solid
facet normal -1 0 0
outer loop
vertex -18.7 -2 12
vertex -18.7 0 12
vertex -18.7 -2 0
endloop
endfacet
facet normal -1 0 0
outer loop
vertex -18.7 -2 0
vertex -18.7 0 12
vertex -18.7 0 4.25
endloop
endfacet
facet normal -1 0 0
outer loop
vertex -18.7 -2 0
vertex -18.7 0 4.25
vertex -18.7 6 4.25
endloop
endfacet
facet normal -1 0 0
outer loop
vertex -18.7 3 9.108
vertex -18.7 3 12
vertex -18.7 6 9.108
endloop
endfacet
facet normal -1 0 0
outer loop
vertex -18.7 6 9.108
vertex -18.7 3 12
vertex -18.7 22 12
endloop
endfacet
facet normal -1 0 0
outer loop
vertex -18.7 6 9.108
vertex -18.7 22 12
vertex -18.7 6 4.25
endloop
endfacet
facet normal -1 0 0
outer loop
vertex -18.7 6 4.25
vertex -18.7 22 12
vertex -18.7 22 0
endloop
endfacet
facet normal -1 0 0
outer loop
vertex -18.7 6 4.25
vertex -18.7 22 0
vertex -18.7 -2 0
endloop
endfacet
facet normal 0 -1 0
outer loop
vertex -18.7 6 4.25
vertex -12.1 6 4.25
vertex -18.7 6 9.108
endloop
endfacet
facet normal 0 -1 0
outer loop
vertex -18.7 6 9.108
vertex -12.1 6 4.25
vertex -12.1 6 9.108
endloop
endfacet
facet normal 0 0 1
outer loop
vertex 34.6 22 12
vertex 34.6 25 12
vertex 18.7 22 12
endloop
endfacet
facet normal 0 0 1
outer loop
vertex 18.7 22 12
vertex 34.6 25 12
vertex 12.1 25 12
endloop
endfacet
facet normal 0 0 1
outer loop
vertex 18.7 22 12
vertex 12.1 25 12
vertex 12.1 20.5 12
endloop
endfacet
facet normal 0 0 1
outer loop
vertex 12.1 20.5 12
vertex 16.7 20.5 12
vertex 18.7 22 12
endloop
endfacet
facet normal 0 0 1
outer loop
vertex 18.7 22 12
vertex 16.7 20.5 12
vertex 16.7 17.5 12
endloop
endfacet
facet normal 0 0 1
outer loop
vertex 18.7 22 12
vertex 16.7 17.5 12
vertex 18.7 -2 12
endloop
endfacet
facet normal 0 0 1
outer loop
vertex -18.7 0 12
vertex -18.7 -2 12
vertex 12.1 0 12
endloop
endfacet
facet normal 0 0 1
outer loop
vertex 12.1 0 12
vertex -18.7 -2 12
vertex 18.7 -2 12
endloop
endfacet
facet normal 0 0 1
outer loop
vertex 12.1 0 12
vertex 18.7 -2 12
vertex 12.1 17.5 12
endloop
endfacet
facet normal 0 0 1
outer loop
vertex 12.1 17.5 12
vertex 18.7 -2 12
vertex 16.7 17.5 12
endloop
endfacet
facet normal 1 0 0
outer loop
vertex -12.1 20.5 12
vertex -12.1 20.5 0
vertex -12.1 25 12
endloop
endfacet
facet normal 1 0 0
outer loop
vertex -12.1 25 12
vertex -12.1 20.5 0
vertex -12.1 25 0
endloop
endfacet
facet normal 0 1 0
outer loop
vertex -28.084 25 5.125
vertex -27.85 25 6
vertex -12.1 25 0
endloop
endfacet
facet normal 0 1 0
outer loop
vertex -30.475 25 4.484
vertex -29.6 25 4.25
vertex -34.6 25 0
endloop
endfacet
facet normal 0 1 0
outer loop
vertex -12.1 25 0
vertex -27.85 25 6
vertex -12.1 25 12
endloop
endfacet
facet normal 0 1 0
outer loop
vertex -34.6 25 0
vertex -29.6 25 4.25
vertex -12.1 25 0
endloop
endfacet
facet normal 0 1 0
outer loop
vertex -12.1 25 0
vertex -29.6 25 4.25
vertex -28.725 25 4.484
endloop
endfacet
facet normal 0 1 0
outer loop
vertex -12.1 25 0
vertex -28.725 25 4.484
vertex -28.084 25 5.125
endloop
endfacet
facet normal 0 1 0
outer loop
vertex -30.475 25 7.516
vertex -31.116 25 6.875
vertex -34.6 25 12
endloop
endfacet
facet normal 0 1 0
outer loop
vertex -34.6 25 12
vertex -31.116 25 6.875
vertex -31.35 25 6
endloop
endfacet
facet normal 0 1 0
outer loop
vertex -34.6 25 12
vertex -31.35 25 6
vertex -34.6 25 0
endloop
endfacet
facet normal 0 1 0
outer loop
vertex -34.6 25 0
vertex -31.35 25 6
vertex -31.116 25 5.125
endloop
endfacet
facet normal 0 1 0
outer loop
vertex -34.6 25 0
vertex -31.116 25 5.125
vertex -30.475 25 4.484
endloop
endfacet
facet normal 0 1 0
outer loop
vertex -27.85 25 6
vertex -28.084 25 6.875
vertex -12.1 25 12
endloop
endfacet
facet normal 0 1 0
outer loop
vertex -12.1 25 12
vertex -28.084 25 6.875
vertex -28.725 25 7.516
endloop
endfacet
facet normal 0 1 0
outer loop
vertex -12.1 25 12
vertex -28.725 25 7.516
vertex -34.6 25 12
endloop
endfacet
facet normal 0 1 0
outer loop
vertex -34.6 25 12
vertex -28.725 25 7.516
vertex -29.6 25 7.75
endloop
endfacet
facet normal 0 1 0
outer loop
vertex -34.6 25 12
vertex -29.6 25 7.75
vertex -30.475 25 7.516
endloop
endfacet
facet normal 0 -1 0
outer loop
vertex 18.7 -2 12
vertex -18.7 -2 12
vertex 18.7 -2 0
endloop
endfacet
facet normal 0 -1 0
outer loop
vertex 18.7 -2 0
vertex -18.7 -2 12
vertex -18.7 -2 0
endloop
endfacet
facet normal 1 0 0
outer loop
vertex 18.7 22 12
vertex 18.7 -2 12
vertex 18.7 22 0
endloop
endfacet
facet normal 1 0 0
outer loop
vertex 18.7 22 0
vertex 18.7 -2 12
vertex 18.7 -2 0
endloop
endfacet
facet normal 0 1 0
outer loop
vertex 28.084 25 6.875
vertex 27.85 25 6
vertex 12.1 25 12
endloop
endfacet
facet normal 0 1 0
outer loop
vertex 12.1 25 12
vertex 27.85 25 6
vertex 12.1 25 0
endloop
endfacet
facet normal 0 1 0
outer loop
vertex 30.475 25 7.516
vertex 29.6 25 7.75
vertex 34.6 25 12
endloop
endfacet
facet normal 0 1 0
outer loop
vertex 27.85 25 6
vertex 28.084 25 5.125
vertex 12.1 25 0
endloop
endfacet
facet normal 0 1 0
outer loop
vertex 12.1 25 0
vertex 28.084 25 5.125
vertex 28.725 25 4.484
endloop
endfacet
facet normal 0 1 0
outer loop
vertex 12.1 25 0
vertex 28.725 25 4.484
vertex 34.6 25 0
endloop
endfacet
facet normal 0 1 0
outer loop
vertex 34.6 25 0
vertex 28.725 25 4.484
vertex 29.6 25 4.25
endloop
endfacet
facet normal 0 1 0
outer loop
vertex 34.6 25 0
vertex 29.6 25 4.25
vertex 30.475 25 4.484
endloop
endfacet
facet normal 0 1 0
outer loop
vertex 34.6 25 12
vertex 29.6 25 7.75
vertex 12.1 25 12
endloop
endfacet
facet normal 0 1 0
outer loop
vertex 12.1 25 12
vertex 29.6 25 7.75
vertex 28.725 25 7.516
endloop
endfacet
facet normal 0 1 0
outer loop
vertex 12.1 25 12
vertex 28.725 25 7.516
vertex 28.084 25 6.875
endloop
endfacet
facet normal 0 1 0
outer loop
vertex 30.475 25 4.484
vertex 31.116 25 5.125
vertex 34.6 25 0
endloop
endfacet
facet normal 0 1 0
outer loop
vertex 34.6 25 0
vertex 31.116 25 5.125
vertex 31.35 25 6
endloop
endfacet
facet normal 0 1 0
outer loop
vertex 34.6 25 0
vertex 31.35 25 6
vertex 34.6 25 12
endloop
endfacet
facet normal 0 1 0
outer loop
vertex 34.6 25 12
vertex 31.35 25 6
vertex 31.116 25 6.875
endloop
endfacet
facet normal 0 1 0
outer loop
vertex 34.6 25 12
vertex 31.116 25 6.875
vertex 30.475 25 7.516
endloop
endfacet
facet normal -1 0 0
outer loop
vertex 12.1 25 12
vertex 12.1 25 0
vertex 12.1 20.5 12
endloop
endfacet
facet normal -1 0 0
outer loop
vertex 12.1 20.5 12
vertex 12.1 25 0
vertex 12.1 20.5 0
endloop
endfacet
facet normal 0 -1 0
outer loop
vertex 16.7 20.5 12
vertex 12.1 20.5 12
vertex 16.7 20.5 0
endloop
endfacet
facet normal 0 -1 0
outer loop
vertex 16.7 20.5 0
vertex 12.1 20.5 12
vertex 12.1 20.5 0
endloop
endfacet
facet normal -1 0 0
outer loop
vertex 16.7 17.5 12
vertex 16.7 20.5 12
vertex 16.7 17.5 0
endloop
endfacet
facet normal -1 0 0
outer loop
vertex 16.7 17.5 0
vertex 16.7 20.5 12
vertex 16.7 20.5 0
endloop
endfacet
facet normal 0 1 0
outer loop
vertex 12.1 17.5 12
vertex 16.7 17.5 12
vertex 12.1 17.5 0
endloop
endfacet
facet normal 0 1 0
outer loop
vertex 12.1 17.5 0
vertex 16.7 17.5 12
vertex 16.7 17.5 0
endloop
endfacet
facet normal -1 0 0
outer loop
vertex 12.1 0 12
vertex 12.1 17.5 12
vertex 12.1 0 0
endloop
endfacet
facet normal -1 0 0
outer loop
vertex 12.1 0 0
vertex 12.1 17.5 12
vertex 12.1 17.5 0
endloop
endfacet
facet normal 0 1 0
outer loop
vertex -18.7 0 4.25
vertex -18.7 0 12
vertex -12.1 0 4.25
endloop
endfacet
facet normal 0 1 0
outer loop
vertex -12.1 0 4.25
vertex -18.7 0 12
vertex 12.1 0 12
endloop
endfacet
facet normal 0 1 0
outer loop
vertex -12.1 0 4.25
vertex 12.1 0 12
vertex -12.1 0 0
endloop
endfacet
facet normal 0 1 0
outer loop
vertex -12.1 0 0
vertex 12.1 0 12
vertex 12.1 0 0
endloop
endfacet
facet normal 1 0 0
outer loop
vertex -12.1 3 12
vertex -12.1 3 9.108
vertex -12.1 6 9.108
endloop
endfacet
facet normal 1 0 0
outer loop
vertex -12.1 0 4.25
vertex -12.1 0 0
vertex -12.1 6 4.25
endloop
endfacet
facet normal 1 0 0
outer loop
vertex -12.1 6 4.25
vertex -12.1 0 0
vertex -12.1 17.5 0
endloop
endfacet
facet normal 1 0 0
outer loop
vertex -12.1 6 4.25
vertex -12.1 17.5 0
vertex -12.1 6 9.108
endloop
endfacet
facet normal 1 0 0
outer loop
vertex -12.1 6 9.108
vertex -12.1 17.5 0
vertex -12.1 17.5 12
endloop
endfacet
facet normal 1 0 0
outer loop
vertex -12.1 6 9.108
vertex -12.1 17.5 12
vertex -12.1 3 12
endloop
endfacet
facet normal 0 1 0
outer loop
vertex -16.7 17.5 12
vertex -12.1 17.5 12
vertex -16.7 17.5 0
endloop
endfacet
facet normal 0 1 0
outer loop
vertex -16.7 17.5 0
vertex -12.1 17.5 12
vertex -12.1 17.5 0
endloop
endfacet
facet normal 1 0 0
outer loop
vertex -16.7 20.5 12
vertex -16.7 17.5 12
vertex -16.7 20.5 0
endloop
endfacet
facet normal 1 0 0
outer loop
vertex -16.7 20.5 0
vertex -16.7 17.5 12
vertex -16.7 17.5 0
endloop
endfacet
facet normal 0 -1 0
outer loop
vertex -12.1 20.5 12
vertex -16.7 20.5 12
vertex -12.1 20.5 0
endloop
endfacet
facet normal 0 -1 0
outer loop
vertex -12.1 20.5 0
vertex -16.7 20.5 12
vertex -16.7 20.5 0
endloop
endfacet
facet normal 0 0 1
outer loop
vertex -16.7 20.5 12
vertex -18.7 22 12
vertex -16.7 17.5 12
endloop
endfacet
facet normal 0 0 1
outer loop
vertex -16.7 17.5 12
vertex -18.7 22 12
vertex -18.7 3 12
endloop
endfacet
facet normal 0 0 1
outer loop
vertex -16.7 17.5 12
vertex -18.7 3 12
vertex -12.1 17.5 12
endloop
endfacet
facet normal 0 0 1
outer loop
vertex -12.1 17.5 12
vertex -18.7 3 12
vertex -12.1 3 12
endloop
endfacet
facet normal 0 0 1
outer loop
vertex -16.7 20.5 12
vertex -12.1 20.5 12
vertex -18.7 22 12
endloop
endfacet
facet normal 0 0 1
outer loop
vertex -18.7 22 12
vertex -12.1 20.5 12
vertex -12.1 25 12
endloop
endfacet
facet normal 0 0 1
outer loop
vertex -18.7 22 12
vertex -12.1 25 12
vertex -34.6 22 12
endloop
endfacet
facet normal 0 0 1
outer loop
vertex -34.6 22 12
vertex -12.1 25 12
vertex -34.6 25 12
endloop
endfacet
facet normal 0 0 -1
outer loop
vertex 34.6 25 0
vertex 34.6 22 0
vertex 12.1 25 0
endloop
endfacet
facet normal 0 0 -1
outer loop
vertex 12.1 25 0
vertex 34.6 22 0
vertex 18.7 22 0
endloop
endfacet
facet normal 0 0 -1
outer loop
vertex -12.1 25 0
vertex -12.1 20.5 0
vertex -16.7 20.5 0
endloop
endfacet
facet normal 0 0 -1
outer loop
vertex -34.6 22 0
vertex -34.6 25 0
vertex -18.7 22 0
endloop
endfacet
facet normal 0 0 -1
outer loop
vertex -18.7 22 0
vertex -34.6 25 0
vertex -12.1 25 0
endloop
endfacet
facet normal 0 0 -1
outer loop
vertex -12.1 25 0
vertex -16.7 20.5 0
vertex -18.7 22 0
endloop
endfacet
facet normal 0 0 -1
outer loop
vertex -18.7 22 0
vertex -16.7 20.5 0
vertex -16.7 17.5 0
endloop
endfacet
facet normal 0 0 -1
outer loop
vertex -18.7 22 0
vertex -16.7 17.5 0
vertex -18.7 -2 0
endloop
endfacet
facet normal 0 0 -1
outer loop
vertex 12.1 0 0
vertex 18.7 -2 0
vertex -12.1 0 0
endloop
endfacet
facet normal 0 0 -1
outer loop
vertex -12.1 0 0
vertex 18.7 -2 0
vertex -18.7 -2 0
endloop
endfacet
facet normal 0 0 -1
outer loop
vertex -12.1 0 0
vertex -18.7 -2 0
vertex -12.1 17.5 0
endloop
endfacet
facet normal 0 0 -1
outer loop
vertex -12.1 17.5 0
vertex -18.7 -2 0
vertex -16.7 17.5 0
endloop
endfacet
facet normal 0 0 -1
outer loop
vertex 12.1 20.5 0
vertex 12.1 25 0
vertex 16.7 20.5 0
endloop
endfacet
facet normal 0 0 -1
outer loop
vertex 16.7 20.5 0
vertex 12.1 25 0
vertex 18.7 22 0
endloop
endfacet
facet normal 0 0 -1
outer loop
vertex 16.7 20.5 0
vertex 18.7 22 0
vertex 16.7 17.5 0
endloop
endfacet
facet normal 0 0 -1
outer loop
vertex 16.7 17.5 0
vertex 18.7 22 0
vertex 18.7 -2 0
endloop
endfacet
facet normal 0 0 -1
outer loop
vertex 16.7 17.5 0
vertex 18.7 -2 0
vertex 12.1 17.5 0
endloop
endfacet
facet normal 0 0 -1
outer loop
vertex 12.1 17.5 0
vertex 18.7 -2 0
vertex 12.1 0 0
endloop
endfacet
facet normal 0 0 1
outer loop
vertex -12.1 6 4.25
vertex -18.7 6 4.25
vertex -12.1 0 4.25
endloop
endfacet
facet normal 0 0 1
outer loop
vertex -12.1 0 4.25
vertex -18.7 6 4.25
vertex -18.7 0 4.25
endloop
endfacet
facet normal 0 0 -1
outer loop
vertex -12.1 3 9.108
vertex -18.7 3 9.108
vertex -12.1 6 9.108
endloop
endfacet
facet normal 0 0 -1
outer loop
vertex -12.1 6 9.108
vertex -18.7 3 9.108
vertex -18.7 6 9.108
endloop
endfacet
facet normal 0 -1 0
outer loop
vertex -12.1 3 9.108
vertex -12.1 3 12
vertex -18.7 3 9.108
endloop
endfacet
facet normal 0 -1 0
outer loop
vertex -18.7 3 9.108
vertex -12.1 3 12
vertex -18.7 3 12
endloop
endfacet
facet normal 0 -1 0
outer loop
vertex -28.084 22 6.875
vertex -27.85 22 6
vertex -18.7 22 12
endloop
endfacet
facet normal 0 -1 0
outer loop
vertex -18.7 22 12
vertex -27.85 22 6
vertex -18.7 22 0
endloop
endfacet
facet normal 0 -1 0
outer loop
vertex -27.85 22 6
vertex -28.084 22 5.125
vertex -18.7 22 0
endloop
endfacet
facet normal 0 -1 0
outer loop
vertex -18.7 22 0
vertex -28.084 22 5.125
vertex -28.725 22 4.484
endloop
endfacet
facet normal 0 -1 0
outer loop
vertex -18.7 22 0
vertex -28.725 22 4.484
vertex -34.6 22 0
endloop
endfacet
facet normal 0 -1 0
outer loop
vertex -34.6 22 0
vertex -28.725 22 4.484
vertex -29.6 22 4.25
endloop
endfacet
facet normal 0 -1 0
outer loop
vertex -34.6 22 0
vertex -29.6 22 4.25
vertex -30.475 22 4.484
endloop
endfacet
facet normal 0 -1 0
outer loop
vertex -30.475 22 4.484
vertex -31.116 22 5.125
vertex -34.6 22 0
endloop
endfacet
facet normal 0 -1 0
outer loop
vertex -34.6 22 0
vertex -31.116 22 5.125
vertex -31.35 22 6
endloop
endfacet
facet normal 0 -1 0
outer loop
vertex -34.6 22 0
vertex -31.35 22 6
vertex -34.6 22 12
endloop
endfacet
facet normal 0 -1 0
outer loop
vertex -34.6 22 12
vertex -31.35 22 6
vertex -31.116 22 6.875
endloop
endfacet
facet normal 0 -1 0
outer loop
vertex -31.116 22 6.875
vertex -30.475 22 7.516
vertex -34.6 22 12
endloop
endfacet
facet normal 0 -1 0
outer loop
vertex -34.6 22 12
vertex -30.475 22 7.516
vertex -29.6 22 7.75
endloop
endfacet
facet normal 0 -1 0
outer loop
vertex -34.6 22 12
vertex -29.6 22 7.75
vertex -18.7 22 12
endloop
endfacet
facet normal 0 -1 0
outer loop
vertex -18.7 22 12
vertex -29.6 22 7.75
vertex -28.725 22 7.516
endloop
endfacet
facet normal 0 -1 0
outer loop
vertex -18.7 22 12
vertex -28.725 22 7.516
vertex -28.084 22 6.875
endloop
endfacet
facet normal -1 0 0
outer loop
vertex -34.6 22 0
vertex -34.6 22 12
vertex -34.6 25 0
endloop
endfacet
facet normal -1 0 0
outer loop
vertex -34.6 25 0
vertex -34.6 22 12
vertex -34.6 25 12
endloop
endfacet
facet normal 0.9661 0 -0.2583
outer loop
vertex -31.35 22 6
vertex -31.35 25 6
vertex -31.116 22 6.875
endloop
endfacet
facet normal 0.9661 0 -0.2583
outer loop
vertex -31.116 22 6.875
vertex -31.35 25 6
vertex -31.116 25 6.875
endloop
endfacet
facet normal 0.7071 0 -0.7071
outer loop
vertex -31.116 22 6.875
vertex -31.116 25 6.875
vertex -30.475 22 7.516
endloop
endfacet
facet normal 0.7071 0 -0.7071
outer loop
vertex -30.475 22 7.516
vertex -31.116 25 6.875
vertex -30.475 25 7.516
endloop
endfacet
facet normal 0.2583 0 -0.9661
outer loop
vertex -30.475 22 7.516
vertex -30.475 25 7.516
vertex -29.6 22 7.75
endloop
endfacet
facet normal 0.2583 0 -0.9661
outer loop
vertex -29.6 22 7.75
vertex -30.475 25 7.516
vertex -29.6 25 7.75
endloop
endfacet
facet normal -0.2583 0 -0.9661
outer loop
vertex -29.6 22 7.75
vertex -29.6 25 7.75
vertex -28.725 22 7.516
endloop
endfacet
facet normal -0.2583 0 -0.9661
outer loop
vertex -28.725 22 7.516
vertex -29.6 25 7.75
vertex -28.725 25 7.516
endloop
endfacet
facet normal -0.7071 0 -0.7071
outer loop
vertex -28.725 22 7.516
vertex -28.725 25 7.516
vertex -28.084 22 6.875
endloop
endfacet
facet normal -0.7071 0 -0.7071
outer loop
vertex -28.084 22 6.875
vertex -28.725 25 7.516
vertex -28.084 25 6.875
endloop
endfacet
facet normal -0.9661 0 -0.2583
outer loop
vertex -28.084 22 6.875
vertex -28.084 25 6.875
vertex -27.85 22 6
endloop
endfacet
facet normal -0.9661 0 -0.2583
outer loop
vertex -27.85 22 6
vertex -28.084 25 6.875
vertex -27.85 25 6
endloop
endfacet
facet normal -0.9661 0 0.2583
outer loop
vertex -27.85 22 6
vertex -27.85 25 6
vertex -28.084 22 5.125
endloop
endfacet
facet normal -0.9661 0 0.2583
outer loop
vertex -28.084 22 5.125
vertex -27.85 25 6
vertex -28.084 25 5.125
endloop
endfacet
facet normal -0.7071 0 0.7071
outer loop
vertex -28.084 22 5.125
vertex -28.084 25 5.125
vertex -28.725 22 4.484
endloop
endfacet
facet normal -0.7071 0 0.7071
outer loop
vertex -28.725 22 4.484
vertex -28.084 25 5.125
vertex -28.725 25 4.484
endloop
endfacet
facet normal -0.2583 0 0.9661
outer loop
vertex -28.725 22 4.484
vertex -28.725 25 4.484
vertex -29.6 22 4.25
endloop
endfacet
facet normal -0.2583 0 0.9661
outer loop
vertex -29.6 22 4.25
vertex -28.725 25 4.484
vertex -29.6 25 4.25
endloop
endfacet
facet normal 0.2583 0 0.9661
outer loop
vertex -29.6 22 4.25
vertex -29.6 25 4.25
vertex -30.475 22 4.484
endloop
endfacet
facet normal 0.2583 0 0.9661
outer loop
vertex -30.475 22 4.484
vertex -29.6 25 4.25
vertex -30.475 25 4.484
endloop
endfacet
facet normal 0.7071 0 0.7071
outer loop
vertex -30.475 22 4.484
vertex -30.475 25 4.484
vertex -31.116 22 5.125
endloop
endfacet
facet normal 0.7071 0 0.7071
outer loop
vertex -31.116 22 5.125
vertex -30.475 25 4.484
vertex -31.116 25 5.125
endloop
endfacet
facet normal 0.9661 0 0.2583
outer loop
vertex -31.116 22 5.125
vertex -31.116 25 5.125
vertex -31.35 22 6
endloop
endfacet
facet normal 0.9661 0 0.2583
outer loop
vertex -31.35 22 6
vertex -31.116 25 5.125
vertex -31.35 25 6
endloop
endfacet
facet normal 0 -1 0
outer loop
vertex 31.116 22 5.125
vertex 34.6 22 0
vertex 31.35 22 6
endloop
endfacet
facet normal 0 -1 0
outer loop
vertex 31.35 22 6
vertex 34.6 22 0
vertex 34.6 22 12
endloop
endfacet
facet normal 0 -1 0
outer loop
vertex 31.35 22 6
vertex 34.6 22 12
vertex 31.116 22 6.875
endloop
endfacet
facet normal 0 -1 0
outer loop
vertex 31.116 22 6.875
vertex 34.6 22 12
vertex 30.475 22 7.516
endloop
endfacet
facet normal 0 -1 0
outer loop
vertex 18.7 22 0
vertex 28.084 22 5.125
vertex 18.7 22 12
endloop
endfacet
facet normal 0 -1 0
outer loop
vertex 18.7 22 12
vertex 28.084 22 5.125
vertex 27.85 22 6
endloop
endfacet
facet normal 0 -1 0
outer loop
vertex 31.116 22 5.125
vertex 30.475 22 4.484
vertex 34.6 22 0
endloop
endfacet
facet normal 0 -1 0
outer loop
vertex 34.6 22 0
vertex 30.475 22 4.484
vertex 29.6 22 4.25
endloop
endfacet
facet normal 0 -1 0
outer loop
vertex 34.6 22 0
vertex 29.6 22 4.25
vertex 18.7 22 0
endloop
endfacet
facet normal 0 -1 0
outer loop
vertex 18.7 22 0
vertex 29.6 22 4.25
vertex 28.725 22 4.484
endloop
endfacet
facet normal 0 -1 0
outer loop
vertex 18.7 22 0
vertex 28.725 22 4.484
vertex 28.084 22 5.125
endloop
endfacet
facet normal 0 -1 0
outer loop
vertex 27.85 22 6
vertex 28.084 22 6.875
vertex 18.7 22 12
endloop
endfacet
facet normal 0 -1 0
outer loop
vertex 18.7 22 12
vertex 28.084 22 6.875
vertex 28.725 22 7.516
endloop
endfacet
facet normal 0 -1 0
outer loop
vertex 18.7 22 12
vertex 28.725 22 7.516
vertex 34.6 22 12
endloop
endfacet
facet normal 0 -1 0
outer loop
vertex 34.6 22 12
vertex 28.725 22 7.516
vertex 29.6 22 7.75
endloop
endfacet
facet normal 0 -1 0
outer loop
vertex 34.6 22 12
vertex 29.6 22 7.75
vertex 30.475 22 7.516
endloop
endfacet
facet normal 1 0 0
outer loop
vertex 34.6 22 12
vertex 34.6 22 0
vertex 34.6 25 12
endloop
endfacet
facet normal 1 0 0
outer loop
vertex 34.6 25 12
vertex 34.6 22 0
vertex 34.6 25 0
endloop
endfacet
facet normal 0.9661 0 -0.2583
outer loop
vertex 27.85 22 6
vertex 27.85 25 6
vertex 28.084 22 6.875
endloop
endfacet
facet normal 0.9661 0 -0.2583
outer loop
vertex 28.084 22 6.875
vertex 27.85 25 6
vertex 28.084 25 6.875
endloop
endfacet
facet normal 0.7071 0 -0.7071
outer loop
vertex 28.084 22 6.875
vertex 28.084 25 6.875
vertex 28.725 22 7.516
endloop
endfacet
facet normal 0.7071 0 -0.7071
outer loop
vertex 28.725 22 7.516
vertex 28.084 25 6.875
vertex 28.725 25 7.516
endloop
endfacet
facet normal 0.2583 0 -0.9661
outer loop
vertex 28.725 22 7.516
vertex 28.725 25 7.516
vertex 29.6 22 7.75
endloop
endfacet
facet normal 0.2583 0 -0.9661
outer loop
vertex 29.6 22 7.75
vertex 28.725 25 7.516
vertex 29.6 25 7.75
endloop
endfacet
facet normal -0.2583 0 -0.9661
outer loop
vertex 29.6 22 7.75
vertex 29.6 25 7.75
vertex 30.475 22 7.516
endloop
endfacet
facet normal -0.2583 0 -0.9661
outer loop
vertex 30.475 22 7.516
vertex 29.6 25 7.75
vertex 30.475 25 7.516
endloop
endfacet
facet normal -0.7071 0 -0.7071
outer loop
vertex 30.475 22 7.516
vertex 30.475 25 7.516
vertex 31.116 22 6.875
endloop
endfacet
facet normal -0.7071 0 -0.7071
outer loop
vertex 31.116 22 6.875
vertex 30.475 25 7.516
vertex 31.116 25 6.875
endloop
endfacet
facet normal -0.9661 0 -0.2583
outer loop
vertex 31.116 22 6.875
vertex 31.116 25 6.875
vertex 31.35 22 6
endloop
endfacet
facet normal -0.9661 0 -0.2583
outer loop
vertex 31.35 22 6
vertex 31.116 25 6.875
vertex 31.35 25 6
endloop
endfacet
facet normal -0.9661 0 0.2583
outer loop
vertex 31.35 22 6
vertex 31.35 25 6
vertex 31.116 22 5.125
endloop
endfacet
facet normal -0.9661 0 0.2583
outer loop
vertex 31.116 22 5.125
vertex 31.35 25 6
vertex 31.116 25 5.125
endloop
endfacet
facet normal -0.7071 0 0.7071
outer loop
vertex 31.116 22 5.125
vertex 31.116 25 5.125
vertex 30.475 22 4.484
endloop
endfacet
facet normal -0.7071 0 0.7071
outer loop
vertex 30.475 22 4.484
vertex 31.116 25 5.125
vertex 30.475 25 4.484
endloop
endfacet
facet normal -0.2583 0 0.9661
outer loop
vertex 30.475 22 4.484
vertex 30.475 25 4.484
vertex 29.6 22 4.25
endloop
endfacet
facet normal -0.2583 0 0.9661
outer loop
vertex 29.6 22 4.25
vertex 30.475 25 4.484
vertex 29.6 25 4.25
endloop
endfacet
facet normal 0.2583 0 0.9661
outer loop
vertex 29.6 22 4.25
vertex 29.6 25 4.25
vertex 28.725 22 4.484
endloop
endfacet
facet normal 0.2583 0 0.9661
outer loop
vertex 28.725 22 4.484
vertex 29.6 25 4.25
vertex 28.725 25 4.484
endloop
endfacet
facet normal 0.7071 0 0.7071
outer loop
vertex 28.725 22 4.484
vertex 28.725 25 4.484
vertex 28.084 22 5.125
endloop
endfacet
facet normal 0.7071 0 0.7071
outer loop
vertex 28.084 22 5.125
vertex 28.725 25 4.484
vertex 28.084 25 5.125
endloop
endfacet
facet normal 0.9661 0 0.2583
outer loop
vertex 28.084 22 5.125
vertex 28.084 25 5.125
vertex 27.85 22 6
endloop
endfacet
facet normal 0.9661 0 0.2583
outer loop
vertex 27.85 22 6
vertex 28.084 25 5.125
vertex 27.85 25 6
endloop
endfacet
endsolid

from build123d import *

# Parameters (mm, degrees)
SALIENTE_EXTRUIR1_DEPTH = 12
CORTAR_EXTRUIR1_DEPTH   = 8
CROQUIS4_W              = 6.6
CROQUIS4_H              = 2.892350448
SALIENTE_EXTRUIR3_DEPTH = 3
CROQUIS2_W              = 22.5
CROQUIS2_H              = 12
CROQUIS2_R              = 1.75
SALIENTE_EXTRUIR4_DEPTH = 3


with BuildPart() as part:
    # Croquis1 → Saliente-Extruir1 (new body)
    with BuildSketch(Plane.XY):
        Polygon((-12.1, 0), (12.1, 0), (12.1, 17.5), (16.7, 17.5), (16.7, 20.5), (12.1, 20.5), (12.1, 25), (18.7, 25), (18.7, -2), (-18.7, -2), (-18.7, 25), (-12.1, 25), (-12.1, 20.5), (-16.7, 20.5), (-16.7, 17.5), (-12.1, 17.5), align=None)
    extrude(amount=SALIENTE_EXTRUIR1_DEPTH)

    # Croquis3 → Cortar-Extruir1 (cut)
    with BuildSketch(Plane(origin=(-12.1, 0, 0), x_dir=(0, 0, -1), z_dir=(1, 0, 0))):
        Polygon((-4.25, 0), (-7.75, 0), (-12, 0), (-12, 6), (-7.75, 6), (-4.25, 6), align=None)
    extrude(amount=-CORTAR_EXTRUIR1_DEPTH, mode=Mode.SUBTRACT)

    # Croquis4 → Saliente-Extruir3 (add)
    with BuildSketch(Plane.XZ.offset(-6)):
        with Locations((-15.4, 10.553824776)):
            Rectangle(CROQUIS4_W, CROQUIS4_H)
    extrude(amount=SALIENTE_EXTRUIR3_DEPTH)

    # Croquis2 → Saliente-Extruir4 (add)
    # profile 1 of 2: a face of its own
    with BuildSketch(Plane(origin=(0, 25, 0), x_dir=(1, 0, 0), z_dir=(0, 1, 0))):
        with Locations((-23.35, -6)):
            Rectangle(CROQUIS2_W, CROQUIS2_H)
        with Locations(Location((-29.6, -6, 0), (0, 0, 180))):
            Circle(CROQUIS2_R, mode=Mode.SUBTRACT)
    # profile 2 of 2: a face of its own
    with BuildSketch(Plane(origin=(0, 25, 0), x_dir=(1, 0, 0), z_dir=(0, 1, 0))):
        with Locations((23.35, -6)):
            Rectangle(CROQUIS2_W, CROQUIS2_H)
        with Locations(Location((29.6, -6, 0), (0, 0, 180))):
            Circle(CROQUIS2_R, mode=Mode.SUBTRACT)
    extrude(amount=-SALIENTE_EXTRUIR4_DEPTH)


solid = part.part
